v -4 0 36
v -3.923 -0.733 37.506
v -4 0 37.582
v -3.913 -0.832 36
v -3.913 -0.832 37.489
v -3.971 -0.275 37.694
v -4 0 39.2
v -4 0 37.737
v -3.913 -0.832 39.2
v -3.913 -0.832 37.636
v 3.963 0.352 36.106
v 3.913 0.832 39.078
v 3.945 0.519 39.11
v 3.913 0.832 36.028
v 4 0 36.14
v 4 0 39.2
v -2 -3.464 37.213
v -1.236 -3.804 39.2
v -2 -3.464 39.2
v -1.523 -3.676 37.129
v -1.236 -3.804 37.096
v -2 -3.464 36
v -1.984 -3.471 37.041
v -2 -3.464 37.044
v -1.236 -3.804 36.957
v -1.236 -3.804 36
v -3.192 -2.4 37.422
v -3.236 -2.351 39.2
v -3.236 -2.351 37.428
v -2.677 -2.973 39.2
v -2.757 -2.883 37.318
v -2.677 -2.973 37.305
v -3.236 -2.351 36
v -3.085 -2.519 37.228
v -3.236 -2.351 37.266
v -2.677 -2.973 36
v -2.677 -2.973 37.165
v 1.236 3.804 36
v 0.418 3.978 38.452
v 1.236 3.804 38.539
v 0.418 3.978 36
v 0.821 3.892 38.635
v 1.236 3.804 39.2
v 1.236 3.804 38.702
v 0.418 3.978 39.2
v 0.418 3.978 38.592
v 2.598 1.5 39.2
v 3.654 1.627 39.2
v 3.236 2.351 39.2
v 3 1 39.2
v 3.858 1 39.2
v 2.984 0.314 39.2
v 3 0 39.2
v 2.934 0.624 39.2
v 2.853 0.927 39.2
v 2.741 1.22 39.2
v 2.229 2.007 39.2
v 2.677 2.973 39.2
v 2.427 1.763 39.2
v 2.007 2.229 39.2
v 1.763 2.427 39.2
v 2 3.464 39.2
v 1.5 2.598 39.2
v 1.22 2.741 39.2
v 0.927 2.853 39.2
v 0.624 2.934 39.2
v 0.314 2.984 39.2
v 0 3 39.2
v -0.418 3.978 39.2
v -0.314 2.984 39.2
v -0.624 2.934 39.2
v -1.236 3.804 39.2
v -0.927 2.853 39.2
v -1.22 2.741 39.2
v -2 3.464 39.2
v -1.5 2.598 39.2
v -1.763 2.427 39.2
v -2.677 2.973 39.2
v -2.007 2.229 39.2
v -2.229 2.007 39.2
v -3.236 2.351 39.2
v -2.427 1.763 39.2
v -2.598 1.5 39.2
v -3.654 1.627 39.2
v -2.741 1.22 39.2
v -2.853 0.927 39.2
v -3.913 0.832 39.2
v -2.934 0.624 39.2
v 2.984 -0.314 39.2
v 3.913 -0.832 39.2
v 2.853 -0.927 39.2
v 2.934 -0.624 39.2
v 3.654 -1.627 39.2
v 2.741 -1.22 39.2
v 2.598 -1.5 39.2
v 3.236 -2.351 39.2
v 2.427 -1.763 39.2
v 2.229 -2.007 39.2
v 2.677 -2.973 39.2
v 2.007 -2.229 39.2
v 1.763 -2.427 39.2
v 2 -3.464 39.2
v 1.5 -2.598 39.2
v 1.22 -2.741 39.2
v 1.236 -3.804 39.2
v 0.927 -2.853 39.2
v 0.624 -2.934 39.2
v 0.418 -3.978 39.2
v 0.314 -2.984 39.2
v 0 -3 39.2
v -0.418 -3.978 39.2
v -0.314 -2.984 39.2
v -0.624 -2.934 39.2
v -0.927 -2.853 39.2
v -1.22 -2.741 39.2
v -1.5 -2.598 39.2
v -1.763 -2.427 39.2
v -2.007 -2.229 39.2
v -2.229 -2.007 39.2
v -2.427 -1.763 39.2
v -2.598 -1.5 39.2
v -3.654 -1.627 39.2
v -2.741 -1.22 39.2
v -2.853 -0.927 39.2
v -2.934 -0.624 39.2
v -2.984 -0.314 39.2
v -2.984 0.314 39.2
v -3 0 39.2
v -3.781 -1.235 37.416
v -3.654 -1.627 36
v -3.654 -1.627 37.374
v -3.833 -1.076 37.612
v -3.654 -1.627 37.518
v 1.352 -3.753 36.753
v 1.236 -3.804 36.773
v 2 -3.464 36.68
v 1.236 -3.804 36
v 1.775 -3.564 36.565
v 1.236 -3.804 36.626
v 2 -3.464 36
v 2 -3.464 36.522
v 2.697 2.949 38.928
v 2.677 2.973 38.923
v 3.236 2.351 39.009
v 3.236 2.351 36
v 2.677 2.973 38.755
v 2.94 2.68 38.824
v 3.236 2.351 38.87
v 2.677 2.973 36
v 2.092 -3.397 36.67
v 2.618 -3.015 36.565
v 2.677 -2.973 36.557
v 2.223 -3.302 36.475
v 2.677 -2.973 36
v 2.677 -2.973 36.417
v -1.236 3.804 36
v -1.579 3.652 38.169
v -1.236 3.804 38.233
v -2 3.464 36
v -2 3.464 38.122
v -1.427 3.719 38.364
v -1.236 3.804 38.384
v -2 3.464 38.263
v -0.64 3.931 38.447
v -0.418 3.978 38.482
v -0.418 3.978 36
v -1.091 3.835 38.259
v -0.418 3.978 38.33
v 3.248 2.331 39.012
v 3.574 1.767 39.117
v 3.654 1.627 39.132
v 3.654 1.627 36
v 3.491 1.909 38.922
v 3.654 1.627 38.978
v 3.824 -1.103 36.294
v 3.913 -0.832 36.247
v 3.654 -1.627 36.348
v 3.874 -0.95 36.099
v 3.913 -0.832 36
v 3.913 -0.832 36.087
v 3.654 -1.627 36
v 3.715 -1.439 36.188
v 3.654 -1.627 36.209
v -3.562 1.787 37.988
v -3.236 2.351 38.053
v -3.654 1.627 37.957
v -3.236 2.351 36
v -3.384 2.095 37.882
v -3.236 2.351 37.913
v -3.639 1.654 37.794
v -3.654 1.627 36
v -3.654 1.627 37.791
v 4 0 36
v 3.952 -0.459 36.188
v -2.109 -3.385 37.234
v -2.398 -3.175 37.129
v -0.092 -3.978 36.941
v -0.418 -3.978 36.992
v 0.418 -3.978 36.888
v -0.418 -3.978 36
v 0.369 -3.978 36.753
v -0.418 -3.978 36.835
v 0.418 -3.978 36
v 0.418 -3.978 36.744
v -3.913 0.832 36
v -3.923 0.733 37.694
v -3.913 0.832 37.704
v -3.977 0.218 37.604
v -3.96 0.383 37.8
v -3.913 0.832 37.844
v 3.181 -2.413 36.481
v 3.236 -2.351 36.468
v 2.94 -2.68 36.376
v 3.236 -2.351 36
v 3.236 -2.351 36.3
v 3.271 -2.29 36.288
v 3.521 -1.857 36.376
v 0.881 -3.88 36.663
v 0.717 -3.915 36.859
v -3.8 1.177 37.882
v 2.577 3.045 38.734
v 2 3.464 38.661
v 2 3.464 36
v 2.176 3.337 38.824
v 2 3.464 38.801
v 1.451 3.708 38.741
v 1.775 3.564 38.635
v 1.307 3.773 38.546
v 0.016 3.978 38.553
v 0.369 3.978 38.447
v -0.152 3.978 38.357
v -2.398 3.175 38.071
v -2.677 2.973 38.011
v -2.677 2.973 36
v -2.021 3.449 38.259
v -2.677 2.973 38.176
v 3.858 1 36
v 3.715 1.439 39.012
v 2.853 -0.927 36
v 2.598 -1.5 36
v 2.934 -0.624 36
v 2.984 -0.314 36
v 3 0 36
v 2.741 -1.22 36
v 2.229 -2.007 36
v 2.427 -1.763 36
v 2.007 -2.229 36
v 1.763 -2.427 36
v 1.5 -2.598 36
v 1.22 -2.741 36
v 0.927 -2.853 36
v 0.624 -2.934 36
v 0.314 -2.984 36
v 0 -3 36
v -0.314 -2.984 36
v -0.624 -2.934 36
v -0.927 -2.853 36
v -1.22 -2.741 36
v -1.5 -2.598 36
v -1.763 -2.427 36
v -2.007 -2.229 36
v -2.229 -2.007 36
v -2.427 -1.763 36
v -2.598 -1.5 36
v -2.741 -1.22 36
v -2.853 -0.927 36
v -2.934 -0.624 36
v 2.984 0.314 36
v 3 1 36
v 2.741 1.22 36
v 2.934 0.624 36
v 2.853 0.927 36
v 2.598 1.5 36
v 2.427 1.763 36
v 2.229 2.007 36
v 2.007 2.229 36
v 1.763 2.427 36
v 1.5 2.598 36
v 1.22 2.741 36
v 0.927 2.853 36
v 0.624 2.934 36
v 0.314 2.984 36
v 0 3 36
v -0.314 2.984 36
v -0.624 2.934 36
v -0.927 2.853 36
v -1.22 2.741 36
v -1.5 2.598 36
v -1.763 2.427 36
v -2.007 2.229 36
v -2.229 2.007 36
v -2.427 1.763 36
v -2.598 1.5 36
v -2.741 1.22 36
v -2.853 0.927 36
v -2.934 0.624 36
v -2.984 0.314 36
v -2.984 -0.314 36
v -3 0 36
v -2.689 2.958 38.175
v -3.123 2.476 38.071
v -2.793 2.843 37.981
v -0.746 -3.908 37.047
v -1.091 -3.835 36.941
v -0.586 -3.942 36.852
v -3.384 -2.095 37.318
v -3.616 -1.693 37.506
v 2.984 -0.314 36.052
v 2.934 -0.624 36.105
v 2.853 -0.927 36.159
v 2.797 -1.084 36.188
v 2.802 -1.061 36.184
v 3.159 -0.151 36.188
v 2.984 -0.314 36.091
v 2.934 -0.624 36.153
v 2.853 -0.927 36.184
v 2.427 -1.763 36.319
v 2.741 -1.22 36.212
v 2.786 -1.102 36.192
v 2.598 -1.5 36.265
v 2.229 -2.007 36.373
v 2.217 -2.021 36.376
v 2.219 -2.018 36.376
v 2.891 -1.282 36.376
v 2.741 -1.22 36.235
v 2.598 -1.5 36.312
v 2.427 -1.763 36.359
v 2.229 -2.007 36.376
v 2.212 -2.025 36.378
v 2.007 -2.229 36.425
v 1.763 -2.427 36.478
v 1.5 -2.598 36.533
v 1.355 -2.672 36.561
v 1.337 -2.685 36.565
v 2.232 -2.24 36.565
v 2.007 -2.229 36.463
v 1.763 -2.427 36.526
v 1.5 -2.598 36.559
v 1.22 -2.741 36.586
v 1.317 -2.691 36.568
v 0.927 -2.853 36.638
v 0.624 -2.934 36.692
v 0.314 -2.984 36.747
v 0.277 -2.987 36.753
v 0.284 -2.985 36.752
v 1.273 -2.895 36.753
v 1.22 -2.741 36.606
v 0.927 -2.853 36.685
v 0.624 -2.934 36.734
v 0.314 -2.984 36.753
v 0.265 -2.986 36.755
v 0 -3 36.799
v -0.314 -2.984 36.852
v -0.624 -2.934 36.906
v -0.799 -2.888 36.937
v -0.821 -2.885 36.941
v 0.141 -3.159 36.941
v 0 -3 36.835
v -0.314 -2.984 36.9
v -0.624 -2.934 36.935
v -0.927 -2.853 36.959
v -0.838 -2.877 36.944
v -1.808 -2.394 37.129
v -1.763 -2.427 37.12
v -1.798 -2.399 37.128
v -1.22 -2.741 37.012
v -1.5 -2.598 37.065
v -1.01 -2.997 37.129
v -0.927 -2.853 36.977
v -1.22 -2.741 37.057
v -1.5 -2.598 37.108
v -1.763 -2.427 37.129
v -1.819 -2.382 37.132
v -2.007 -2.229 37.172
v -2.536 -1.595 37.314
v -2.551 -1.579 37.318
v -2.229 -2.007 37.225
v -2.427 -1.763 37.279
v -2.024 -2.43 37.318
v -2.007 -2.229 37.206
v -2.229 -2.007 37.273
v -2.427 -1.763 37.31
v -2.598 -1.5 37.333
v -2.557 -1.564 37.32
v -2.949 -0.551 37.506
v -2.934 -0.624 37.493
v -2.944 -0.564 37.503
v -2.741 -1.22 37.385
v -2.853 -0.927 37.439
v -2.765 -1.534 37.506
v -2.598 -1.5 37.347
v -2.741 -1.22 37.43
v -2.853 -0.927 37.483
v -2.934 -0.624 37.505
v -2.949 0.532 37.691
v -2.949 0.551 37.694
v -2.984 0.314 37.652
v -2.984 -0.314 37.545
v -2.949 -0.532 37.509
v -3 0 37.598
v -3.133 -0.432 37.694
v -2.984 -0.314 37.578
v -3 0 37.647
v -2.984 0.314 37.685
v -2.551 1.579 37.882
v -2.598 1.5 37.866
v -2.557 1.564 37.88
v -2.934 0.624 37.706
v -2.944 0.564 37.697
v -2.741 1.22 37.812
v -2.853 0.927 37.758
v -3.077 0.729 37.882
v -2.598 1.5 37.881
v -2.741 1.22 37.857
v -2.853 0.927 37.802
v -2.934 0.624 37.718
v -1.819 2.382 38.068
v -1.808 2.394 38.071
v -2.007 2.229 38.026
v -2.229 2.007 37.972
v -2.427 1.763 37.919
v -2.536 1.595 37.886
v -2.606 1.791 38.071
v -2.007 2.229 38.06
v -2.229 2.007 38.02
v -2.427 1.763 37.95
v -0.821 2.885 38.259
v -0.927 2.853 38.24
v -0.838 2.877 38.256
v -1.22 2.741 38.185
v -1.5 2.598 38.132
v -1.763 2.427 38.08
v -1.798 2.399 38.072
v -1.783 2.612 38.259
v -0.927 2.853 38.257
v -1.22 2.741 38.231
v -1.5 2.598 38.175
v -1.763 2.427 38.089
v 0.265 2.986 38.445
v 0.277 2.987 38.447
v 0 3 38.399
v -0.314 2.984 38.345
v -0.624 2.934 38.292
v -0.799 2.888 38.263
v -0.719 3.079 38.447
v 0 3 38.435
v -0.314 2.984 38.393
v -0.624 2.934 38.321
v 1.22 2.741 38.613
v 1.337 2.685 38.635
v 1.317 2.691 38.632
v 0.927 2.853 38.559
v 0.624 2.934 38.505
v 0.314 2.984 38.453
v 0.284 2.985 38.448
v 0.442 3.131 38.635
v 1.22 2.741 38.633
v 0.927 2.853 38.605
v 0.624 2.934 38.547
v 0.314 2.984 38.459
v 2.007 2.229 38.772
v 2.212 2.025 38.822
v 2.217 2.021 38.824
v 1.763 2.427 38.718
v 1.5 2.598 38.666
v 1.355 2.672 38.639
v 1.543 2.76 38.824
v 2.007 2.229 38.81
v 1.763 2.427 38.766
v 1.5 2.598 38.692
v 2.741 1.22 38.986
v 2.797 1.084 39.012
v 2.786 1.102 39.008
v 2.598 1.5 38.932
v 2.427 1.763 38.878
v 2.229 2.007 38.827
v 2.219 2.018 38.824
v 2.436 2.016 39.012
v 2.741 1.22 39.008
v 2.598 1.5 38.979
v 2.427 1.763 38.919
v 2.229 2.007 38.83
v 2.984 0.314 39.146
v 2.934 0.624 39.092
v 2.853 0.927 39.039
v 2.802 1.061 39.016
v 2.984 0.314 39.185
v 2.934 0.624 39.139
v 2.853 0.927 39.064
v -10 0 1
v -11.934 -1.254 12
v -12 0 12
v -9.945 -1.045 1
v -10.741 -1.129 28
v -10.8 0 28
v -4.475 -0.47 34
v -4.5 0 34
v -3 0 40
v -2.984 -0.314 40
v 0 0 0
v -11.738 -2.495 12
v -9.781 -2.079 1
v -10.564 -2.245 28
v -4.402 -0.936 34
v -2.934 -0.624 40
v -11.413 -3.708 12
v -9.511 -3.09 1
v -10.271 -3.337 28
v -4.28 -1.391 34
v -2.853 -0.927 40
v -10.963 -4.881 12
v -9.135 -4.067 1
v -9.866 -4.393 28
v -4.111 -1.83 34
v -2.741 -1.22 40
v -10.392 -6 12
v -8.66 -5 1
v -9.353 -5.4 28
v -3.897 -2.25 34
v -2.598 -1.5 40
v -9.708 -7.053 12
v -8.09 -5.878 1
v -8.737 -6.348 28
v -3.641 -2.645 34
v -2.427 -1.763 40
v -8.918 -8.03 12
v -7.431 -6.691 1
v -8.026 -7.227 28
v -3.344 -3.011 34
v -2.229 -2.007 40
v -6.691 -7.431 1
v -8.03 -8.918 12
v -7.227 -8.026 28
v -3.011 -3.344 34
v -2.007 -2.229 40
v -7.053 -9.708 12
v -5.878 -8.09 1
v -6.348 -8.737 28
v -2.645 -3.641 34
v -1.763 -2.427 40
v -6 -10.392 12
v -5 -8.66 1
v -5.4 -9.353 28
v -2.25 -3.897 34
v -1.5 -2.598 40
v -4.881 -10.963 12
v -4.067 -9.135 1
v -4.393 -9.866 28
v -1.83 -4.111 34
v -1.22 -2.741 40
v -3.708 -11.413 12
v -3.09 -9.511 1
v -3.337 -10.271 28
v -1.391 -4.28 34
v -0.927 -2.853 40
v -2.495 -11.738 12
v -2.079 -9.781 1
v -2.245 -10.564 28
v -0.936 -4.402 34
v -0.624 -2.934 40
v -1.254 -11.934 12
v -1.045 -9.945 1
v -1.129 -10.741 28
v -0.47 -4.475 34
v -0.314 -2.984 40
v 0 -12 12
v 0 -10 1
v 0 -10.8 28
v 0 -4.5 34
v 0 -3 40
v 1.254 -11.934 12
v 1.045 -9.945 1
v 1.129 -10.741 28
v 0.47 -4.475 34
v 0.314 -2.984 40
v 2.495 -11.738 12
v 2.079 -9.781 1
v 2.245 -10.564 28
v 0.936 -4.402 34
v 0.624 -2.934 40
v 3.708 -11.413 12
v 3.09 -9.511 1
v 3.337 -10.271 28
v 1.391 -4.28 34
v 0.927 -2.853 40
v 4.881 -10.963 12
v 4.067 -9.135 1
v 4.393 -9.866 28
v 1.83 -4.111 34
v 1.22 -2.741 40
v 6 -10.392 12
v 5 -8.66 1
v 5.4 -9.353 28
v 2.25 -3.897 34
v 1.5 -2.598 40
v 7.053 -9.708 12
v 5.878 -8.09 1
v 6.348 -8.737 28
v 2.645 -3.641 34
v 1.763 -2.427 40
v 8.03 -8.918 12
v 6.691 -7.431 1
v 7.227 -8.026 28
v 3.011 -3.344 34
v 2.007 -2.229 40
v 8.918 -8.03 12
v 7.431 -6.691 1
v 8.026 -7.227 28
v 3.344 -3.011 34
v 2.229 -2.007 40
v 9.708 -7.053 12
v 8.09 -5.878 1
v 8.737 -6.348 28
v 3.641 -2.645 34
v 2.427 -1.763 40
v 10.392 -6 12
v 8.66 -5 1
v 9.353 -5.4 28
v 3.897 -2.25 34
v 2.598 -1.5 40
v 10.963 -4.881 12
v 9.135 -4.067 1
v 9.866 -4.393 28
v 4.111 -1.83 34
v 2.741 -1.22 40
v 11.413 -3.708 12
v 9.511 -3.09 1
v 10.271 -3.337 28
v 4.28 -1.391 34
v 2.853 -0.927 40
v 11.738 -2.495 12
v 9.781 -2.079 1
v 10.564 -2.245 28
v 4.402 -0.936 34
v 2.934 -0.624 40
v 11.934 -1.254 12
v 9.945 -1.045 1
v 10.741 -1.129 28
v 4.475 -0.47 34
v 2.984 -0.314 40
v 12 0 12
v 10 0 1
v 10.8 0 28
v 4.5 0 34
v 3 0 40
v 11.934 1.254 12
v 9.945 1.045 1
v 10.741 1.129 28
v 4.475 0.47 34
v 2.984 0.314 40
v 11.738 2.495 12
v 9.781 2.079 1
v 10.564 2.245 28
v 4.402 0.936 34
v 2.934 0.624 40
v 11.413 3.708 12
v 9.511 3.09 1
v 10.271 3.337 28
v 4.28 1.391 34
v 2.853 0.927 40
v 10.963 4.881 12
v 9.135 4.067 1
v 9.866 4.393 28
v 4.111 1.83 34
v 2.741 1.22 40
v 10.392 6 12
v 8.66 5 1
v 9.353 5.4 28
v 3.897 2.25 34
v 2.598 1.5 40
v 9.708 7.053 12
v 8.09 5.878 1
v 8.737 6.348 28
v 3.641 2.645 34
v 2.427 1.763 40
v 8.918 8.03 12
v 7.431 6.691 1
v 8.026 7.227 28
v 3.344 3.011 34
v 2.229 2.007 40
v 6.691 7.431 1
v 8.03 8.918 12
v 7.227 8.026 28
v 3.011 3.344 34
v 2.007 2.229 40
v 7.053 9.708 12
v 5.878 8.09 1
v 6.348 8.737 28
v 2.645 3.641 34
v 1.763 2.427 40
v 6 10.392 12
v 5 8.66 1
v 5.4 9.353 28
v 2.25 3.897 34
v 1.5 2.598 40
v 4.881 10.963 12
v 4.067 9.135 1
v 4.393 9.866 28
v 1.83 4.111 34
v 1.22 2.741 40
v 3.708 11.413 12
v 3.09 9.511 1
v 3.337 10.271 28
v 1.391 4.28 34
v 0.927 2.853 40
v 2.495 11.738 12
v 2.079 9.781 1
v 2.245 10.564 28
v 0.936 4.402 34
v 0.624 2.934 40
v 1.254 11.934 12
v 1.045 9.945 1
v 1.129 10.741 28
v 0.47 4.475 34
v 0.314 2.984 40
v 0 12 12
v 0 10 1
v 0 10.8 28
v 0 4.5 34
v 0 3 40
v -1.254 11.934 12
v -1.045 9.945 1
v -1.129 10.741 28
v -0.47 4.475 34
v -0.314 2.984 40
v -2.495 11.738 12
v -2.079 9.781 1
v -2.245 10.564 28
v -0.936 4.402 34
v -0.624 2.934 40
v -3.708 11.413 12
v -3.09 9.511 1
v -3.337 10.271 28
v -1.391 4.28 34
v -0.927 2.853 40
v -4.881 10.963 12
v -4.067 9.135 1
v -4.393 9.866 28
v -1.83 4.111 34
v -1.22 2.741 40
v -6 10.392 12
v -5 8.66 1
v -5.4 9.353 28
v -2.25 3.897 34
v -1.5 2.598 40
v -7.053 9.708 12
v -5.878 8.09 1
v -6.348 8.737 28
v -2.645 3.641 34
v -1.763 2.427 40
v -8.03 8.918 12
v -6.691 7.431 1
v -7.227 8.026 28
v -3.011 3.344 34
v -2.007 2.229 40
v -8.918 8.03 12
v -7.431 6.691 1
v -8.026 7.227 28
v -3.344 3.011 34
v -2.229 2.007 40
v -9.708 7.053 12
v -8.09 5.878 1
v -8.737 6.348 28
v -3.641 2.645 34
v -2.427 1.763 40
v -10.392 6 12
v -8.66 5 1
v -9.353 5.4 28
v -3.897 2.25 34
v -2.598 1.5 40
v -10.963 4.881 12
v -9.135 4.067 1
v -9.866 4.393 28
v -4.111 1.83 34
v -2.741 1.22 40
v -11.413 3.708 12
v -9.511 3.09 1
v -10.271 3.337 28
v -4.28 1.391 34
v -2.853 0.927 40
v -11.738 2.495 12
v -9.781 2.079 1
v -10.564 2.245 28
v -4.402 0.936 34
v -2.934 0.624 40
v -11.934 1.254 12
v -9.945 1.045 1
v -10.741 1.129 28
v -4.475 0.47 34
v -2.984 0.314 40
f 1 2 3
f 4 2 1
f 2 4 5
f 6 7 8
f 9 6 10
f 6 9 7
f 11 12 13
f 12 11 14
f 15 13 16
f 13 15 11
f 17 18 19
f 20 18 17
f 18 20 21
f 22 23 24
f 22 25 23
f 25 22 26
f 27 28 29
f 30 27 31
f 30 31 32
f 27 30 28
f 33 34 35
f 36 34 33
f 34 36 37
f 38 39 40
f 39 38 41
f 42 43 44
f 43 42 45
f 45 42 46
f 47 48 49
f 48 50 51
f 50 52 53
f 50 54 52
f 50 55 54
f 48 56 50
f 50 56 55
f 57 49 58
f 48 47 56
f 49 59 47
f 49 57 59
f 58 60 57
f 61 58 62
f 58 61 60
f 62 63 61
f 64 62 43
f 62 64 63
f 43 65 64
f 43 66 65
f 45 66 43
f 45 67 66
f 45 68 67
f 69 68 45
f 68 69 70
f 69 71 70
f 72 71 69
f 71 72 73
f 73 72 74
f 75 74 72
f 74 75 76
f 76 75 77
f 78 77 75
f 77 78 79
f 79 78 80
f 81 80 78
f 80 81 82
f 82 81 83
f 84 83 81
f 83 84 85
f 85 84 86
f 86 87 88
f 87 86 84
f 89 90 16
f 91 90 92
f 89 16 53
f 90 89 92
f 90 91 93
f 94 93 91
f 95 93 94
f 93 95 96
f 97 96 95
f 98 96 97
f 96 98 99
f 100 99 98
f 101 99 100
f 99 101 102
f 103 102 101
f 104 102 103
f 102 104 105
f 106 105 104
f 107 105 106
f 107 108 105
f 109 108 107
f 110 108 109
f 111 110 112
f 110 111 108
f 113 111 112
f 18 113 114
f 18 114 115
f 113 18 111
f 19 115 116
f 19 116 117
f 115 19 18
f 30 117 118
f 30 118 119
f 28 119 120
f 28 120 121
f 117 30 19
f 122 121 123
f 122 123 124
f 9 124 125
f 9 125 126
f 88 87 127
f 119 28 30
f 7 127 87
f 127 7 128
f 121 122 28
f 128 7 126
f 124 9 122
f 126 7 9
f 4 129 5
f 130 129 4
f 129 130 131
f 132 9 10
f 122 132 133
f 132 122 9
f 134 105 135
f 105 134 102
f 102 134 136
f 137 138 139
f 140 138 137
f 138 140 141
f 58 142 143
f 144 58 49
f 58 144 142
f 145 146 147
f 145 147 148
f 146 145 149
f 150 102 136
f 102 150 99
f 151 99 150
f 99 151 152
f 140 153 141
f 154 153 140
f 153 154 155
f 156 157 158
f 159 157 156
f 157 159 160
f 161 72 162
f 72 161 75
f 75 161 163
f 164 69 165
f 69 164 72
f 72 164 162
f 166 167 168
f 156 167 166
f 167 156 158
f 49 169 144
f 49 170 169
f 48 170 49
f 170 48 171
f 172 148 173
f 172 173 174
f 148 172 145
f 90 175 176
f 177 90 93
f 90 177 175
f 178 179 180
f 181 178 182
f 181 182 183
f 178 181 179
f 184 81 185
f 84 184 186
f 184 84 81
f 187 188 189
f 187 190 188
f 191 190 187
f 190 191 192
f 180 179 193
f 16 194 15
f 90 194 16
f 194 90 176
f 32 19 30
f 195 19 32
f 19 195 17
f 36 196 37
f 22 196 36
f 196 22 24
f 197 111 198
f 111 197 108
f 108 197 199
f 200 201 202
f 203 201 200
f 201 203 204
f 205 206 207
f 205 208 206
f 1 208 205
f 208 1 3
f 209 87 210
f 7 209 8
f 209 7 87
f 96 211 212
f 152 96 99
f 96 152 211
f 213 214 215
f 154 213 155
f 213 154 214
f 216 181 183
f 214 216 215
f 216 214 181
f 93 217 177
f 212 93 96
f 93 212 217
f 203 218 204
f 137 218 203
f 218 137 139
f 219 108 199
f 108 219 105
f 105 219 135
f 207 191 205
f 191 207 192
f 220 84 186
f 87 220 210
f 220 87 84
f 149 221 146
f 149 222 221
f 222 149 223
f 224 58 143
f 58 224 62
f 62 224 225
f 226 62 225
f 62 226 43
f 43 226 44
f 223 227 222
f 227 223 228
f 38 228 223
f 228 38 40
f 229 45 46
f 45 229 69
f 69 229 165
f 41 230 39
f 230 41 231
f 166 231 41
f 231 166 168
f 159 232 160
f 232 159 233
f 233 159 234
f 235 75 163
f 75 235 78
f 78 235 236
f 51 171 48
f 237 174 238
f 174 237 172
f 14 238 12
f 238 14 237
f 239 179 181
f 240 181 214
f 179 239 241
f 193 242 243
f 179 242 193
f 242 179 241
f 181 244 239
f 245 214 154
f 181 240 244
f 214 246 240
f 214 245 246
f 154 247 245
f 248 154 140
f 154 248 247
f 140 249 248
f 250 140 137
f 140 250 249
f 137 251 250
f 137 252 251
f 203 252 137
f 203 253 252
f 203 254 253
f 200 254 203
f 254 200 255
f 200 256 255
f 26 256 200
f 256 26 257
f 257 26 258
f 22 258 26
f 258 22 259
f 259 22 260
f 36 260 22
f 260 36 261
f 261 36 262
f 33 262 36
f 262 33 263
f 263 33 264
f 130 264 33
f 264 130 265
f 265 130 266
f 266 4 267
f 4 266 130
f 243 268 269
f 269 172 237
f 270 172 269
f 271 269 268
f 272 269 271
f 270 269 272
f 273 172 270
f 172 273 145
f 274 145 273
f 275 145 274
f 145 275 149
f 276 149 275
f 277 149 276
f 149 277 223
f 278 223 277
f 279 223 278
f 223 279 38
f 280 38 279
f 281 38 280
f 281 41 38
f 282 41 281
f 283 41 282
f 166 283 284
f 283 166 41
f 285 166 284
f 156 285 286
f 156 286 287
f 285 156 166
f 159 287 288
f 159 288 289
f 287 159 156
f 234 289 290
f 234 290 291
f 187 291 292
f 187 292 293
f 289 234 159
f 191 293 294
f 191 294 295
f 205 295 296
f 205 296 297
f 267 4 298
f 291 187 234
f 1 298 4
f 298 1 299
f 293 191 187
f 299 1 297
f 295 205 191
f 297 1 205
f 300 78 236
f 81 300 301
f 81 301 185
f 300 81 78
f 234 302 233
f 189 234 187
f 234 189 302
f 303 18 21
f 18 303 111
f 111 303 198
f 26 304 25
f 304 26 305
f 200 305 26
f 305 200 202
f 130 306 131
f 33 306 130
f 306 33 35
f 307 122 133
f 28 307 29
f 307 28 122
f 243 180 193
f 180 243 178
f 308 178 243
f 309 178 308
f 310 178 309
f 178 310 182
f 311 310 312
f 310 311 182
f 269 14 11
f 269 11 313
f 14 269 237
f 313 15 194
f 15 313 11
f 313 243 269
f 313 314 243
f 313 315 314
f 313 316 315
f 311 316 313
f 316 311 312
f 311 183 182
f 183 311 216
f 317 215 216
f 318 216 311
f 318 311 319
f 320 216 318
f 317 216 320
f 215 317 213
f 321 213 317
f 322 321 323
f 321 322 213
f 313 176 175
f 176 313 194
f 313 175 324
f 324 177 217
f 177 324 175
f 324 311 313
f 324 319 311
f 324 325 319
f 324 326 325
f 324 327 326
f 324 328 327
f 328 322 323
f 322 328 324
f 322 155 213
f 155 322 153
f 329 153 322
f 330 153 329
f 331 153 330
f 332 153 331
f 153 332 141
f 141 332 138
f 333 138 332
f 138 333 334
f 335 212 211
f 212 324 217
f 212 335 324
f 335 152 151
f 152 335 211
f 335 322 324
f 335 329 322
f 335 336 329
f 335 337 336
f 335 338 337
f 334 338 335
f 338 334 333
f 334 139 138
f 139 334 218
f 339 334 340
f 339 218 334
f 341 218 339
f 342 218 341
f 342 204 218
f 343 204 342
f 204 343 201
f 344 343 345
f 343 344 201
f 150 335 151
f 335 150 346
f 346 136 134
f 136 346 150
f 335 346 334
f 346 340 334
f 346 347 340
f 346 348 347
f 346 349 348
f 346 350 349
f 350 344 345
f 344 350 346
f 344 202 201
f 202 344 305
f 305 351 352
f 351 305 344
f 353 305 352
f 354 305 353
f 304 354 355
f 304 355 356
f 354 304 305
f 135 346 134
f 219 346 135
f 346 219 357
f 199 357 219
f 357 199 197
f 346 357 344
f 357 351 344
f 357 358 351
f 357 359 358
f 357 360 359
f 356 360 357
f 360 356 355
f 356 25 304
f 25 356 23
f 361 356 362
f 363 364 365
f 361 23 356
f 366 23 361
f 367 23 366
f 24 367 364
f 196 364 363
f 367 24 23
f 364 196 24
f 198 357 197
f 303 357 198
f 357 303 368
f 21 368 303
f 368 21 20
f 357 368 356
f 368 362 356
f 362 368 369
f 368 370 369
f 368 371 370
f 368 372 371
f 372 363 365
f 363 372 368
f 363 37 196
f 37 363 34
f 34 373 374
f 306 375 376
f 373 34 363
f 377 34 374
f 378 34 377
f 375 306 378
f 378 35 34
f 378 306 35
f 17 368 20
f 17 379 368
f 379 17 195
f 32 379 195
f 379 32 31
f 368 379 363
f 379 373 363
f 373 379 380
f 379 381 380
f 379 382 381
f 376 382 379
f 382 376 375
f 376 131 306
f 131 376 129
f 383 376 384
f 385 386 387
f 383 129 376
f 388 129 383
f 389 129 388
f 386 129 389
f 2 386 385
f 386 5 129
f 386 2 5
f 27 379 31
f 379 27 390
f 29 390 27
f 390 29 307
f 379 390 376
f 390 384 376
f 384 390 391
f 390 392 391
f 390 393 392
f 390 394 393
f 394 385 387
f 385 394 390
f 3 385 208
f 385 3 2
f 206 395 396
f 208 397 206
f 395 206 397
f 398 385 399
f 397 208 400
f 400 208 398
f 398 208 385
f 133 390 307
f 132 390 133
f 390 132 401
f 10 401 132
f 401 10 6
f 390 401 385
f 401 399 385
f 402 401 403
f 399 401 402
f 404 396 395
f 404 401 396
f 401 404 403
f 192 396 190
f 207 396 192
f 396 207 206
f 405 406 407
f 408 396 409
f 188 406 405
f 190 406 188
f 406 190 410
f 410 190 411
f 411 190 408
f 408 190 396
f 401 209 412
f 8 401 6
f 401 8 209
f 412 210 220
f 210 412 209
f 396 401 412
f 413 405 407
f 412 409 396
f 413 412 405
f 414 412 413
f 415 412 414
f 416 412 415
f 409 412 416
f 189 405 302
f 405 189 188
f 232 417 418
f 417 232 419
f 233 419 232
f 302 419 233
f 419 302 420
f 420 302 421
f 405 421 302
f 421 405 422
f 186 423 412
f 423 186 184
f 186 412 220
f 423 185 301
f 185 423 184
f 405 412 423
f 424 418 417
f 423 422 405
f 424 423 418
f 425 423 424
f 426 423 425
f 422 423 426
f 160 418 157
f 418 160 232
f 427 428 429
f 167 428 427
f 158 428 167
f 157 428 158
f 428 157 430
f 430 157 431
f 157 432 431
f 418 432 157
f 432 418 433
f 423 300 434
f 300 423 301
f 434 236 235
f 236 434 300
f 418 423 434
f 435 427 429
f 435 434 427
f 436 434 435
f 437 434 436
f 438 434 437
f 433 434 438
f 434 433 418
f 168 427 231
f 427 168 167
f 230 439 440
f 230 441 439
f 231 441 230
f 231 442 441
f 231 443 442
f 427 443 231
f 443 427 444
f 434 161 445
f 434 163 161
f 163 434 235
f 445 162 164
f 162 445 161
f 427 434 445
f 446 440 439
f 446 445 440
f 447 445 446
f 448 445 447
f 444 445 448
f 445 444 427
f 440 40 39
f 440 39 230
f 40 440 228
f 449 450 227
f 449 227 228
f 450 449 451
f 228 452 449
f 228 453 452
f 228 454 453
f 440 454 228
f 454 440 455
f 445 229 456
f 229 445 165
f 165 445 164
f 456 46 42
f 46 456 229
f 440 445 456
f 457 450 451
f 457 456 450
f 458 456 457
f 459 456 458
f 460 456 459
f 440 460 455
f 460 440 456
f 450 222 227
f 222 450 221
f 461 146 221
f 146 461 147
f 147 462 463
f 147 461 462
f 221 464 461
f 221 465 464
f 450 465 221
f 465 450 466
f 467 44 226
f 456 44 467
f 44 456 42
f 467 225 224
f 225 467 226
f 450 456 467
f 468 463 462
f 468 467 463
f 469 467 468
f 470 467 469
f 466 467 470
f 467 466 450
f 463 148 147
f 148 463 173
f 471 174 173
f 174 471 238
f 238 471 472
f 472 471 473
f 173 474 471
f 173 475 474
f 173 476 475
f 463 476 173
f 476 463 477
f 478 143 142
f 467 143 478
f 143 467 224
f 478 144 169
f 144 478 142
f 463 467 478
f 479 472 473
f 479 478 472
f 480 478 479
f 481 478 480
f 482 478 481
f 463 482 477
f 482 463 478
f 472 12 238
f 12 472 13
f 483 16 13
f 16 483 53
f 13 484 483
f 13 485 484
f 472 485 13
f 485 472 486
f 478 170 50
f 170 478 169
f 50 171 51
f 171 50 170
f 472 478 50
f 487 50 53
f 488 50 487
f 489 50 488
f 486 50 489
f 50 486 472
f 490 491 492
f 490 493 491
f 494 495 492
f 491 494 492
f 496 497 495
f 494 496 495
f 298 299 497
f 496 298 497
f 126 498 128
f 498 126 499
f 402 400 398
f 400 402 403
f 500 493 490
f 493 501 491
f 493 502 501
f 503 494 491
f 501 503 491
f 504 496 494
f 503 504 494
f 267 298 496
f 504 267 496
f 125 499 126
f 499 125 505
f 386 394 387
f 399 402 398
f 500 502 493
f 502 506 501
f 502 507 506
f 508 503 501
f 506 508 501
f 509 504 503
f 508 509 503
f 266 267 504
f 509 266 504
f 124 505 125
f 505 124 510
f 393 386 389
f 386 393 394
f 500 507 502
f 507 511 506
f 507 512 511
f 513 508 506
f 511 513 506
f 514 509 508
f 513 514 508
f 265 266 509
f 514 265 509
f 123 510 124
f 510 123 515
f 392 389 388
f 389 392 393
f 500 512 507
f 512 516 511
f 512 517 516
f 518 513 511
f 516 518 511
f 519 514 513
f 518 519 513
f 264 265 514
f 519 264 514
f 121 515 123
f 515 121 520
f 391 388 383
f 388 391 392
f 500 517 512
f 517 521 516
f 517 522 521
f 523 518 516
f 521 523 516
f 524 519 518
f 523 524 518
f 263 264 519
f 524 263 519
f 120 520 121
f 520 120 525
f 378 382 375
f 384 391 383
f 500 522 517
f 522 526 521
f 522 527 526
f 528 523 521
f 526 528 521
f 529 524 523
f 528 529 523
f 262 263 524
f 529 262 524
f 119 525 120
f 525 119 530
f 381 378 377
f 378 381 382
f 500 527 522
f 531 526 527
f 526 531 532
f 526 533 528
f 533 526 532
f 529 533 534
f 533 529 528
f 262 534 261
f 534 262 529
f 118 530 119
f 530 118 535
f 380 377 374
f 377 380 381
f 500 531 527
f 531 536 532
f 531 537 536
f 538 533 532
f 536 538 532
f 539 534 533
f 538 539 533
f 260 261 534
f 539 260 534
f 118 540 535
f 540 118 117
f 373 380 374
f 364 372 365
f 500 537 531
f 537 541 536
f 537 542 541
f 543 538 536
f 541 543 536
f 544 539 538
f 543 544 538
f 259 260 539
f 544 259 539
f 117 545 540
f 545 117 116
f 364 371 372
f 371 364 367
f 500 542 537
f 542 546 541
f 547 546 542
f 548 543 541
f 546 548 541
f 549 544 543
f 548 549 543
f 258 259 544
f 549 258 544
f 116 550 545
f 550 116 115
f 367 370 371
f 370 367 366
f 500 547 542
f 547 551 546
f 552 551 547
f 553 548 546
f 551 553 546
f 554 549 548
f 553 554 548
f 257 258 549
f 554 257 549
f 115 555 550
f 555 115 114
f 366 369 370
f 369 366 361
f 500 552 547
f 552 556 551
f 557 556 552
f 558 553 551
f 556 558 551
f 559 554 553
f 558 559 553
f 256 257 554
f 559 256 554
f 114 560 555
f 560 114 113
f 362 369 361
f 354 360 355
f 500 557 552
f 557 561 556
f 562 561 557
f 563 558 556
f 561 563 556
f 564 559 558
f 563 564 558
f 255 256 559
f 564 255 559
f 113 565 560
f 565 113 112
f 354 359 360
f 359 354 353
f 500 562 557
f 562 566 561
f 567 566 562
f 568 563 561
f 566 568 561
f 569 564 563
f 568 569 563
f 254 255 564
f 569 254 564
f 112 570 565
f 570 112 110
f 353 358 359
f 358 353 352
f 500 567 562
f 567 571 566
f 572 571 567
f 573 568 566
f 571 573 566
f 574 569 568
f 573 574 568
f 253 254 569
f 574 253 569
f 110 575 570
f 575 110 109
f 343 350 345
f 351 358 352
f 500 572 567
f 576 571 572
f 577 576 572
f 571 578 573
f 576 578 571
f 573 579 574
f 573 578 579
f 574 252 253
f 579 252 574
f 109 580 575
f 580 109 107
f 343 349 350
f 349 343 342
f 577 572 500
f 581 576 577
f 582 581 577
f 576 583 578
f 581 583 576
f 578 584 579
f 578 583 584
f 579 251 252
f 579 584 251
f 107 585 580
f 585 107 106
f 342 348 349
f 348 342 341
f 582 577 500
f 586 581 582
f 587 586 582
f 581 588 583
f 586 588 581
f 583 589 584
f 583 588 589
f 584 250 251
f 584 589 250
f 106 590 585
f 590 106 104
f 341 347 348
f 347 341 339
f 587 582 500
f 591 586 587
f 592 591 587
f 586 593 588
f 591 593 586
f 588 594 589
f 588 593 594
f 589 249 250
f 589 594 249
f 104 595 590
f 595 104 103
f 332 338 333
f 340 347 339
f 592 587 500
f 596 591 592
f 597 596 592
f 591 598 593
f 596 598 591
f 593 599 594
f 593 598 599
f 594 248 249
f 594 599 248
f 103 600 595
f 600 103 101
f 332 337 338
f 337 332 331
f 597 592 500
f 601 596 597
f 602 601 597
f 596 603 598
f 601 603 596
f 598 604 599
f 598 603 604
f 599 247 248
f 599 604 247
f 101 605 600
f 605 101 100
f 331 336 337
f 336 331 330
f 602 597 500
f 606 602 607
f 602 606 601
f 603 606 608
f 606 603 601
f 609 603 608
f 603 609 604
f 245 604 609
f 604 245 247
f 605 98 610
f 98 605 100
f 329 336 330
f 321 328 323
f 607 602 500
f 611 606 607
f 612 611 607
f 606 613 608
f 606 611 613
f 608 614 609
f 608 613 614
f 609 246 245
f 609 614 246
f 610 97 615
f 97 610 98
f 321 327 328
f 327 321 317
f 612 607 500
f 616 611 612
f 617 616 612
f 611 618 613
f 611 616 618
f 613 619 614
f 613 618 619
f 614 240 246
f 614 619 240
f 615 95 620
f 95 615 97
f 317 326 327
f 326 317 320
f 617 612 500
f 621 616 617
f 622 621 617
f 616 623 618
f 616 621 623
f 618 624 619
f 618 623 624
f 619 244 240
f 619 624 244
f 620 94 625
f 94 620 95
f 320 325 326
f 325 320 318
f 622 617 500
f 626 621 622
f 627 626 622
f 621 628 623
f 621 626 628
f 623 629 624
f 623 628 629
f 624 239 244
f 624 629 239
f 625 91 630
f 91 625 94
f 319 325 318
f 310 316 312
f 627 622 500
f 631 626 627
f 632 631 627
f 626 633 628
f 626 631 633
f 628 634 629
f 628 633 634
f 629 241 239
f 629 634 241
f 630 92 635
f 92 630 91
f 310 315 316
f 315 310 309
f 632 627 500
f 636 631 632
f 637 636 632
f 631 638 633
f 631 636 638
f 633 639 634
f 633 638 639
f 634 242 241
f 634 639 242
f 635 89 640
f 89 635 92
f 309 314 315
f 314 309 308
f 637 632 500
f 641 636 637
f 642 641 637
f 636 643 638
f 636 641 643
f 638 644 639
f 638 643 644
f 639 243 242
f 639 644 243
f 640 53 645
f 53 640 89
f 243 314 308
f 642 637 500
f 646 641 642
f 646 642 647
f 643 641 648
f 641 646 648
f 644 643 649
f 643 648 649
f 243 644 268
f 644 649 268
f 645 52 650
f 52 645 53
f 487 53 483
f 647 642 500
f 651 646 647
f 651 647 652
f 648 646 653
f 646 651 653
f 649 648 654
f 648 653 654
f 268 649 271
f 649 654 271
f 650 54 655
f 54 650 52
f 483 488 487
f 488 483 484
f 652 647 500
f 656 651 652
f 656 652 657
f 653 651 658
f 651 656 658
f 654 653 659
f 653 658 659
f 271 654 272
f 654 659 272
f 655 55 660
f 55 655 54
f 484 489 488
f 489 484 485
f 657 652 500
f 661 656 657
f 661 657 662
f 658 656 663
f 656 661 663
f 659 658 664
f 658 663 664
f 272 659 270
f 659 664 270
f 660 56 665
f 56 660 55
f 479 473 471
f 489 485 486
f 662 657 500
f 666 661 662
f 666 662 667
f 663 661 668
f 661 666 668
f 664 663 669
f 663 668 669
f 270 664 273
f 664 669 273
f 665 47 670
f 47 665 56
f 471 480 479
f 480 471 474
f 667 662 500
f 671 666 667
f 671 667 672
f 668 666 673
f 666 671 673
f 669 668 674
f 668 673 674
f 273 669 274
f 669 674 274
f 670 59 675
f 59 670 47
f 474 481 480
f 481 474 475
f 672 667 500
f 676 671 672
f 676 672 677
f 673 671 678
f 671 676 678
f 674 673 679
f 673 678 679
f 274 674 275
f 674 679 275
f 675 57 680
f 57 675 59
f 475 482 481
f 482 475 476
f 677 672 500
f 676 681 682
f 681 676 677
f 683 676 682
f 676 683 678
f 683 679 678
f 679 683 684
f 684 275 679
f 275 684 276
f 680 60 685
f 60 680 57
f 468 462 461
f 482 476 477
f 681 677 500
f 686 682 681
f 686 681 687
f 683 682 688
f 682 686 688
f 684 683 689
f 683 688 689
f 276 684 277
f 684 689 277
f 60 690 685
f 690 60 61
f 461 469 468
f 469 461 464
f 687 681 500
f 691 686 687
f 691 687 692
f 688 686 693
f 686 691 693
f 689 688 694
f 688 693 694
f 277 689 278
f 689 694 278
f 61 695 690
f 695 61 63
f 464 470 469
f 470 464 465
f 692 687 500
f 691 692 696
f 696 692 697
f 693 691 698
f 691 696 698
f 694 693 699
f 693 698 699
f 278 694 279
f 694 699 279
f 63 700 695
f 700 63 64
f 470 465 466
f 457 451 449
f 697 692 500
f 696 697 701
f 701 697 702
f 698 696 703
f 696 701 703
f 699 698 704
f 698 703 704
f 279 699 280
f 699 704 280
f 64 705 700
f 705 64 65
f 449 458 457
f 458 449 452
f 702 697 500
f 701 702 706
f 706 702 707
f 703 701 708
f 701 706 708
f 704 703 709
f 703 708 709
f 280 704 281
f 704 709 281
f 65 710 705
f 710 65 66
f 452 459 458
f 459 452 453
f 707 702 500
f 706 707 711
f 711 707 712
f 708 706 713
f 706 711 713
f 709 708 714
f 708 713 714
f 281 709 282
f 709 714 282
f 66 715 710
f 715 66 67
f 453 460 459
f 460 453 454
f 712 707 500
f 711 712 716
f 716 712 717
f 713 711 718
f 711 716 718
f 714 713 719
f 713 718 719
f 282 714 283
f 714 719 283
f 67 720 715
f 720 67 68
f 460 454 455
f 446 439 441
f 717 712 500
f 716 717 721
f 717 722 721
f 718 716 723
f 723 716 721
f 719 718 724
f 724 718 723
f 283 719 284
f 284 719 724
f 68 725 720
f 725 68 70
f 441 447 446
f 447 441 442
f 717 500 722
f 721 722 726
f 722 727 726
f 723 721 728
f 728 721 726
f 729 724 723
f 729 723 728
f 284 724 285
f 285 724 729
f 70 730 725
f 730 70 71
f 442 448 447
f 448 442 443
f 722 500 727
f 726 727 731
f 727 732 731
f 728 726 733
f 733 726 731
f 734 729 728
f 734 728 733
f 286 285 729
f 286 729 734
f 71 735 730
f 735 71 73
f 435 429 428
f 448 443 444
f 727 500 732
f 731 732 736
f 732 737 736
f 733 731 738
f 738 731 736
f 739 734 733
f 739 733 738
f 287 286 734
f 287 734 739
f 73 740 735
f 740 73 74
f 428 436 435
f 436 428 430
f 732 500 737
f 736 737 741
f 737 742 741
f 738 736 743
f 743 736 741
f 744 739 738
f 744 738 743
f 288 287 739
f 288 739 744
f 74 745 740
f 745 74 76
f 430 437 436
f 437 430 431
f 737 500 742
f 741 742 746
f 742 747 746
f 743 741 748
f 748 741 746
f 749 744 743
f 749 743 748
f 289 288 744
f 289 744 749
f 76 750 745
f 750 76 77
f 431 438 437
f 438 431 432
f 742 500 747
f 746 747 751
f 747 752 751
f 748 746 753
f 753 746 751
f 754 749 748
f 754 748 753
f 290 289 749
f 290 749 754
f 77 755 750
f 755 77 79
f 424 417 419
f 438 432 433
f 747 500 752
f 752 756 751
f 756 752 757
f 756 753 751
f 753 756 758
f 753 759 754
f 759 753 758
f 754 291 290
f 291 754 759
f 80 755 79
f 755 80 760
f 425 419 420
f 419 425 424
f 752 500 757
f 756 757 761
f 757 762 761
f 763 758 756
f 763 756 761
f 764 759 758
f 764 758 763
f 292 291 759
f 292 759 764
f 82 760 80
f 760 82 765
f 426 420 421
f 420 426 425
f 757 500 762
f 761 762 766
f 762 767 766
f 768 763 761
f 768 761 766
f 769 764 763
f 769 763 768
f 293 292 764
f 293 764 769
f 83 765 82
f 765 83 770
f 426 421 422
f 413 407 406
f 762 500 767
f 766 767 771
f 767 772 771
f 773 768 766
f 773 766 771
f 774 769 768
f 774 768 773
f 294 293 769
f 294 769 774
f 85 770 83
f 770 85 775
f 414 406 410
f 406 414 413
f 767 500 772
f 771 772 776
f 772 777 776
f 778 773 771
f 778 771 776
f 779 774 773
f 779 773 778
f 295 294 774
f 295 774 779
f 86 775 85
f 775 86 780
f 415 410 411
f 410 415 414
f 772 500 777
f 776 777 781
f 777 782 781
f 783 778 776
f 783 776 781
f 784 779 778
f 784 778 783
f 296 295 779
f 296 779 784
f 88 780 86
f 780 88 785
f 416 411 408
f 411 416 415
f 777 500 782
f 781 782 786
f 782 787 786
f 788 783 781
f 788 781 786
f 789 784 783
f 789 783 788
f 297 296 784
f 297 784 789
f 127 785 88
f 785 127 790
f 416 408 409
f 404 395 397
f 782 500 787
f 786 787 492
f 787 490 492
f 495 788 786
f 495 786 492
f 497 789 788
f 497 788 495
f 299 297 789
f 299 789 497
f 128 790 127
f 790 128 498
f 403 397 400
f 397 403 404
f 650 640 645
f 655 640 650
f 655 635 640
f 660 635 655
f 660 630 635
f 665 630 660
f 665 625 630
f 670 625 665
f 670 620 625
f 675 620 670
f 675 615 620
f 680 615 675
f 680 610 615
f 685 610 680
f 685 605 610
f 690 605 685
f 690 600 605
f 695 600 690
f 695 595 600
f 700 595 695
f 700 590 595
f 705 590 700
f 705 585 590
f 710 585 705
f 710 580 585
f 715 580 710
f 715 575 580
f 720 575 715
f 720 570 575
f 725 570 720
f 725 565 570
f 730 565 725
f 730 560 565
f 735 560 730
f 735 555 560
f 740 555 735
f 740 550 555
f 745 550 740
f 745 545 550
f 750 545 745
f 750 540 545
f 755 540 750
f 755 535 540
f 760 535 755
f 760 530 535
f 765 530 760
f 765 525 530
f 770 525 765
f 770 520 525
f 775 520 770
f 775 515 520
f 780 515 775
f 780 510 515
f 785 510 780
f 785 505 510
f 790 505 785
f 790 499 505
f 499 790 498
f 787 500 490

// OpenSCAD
// Parametric bottle with smooth transitions
module parametric_bottle(height, base_radius, neck_radius, body_radius) {
    sections = 30;
    
    // Define profile points
    profile_points = [
        [0, 0, 0],
        [base_radius, 0, 1],
        [body_radius, 0, height * 0.3],
        [body_radius * 0.9, 0, height * 0.7],
        [neck_radius * 1.5, 0, height * 0.85],
        [neck_radius, 0, height * 0.9],
        [neck_radius, 0, height],
        [0, 0, height]
    ];
    
    // Rotate profile around Z axis
    rotate_extrude($fn = 60)
        polygon(points = [
            for (p = profile_points) [p[0], p[2]]
        ]);
    
    // Add threading to neck
    translate([0, 0, height * 0.9])
    difference() {
        cylinder(h = height * 0.08, r = neck_radius + 1, $fn = 30);
        cylinder(h = height * 0.08, r = neck_radius, $fn = 30);
        
        // Thread groove
        linear_extrude(height = height * 0.08, twist = 360)
            translate([neck_radius, 0, 0])
            square([2, 1]);
    }
}

parametric_bottle(40, 10, 3, 12);
